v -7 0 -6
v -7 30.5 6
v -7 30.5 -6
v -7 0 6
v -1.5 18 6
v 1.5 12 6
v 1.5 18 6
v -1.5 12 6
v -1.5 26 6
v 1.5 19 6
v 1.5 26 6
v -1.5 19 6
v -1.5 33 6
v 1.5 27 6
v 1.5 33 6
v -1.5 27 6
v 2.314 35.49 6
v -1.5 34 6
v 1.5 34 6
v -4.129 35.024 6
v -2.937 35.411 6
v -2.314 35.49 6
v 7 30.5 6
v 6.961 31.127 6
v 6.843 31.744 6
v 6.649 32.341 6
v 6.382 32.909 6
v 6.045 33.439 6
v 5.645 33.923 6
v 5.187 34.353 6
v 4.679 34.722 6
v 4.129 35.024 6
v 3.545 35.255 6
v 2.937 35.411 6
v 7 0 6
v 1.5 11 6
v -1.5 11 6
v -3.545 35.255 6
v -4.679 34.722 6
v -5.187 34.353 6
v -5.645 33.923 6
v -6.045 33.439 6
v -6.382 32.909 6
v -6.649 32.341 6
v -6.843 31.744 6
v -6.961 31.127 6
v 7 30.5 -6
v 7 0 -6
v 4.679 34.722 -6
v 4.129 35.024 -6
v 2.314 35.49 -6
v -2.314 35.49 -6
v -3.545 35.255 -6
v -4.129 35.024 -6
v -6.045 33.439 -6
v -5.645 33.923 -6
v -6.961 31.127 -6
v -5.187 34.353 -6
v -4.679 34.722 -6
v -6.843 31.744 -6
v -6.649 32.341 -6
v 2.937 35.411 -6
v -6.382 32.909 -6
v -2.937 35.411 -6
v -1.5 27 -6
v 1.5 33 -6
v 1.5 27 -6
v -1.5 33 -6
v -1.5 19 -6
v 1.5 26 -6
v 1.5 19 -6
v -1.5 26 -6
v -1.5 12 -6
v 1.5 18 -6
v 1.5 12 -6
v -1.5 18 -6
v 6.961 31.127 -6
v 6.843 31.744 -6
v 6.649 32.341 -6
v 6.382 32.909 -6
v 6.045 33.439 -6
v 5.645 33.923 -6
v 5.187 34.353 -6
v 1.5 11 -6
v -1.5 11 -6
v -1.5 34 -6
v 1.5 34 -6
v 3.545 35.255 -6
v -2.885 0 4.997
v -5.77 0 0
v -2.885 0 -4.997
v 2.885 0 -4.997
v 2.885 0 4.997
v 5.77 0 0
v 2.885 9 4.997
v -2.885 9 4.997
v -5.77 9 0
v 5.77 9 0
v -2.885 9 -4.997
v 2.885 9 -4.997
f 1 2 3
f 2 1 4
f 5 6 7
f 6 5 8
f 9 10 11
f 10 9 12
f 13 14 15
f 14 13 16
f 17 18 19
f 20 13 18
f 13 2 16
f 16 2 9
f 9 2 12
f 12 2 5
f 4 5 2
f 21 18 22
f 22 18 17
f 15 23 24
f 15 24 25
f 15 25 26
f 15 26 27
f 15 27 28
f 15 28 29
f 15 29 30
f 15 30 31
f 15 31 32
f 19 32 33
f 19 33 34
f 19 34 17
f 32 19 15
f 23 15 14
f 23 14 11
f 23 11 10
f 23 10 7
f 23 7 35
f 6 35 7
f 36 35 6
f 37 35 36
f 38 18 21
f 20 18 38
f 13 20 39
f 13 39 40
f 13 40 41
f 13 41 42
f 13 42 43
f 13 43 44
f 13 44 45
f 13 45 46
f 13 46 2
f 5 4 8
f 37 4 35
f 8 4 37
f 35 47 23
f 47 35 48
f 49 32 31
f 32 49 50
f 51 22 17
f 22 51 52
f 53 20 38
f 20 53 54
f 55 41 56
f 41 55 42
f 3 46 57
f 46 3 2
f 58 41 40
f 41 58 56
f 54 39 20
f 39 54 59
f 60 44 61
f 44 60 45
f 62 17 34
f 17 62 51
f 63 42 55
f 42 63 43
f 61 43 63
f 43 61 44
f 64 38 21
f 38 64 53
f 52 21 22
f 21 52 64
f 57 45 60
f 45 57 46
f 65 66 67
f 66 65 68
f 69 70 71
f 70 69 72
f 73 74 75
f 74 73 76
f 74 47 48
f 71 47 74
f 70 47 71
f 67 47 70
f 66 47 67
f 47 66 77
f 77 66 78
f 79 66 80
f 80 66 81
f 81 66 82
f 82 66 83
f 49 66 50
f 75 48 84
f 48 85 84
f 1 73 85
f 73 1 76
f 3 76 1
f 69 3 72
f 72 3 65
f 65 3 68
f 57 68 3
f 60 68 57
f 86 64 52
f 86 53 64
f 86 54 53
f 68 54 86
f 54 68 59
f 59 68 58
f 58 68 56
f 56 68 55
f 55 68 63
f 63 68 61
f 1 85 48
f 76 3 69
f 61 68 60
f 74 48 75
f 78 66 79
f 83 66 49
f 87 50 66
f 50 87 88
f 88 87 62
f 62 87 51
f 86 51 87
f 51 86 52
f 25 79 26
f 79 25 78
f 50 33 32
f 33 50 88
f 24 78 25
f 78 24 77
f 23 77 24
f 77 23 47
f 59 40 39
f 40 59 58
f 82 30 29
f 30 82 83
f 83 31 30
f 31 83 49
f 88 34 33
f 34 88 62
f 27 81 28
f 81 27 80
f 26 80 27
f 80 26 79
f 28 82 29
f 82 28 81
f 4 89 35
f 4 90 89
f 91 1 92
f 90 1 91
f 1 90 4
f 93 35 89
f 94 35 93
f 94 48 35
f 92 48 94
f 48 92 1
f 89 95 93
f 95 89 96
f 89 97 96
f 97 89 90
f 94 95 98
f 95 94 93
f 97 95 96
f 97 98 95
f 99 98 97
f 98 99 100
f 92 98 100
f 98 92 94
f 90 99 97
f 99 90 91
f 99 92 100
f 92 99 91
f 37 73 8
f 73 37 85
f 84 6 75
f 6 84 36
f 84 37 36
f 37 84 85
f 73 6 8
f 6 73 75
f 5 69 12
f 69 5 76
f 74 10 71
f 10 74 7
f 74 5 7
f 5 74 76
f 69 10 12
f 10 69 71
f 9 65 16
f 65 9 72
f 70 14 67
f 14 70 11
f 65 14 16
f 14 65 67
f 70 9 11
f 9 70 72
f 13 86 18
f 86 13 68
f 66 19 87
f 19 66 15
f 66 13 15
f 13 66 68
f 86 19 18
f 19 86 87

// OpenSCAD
$fn = 50;


difference() {
	union() {
		translate(v = [0, 21.0000000000, -6.0000000000]) {
			hull() {
				translate(v = [-2.0000000000, 9.5000000000, 0]) {
					cylinder(h = 12, r = 5);
				}
				translate(v = [2.0000000000, 9.5000000000, 0]) {
					cylinder(h = 12, r = 5);
				}
				translate(v = [-2.0000000000, -9.5000000000, 0]) {
					cylinder(h = 12, r = 5);
				}
				translate(v = [2.0000000000, -9.5000000000, 0]) {
					cylinder(h = 12, r = 5);
				}
			}
		}
		translate(v = [0, 21.0000000000, -6.0000000000]) {
			hull() {
				translate(v = [-2.0000000000, 9.5000000000, 0]) {
					cylinder(h = 12, r = 5);
				}
				translate(v = [2.0000000000, 9.5000000000, 0]) {
					cylinder(h = 12, r = 5);
				}
				translate(v = [-2.0000000000, -9.5000000000, 0]) {
					cylinder(h = 12, r = 5);
				}
				translate(v = [2.0000000000, -9.5000000000, 0]) {
					cylinder(h = 12, r = 5);
				}
			}
		}
		translate(v = [-7.0000000000, 0, -6.0000000000]) {
			cube(size = [14, 13.5000000000, 12]);
		}
	}
	union() {
		translate(v = [0.0000000000, 9, 0]) {
			rotate(a = [0, 0, 0]) {
				difference() {
					union() {
						rotate(a = [90, 0, 0]) {
							linear_extrude(height = 13.5000000000) {
								polygon(points = [[5.7700000000, 0.0000000000], [2.8850000000, 4.9969665798], [-2.8850000000, 4.9969665798], [-5.7700000000, 0.0000000000], [-2.8850000000, -4.9969665798], [2.8850000000, -4.9969665798]]);
							}
						}
					}
					union();
				}
			}
		}
		translate(v = [-1.5000000000, 11.0000000000, -50]) {
			cube(size = [3, 1, 100]);
		}
		translate(v = [-1.5000000000, 18.0000000000, -50]) {
			cube(size = [3, 1, 100]);
		}
		translate(v = [-1.5000000000, 26.0000000000, -50]) {
			cube(size = [3, 1, 100]);
		}
		translate(v = [-1.5000000000, 33.0000000000, -50]) {
			cube(size = [3, 1, 100]);
		}
		translate(v = [0.0000000000, 8, 0]) {
			rotate(a = [90, 0, 0]) {
				cylinder(h = 8, r = 3.0000000000);
			}
		}
	}
}
